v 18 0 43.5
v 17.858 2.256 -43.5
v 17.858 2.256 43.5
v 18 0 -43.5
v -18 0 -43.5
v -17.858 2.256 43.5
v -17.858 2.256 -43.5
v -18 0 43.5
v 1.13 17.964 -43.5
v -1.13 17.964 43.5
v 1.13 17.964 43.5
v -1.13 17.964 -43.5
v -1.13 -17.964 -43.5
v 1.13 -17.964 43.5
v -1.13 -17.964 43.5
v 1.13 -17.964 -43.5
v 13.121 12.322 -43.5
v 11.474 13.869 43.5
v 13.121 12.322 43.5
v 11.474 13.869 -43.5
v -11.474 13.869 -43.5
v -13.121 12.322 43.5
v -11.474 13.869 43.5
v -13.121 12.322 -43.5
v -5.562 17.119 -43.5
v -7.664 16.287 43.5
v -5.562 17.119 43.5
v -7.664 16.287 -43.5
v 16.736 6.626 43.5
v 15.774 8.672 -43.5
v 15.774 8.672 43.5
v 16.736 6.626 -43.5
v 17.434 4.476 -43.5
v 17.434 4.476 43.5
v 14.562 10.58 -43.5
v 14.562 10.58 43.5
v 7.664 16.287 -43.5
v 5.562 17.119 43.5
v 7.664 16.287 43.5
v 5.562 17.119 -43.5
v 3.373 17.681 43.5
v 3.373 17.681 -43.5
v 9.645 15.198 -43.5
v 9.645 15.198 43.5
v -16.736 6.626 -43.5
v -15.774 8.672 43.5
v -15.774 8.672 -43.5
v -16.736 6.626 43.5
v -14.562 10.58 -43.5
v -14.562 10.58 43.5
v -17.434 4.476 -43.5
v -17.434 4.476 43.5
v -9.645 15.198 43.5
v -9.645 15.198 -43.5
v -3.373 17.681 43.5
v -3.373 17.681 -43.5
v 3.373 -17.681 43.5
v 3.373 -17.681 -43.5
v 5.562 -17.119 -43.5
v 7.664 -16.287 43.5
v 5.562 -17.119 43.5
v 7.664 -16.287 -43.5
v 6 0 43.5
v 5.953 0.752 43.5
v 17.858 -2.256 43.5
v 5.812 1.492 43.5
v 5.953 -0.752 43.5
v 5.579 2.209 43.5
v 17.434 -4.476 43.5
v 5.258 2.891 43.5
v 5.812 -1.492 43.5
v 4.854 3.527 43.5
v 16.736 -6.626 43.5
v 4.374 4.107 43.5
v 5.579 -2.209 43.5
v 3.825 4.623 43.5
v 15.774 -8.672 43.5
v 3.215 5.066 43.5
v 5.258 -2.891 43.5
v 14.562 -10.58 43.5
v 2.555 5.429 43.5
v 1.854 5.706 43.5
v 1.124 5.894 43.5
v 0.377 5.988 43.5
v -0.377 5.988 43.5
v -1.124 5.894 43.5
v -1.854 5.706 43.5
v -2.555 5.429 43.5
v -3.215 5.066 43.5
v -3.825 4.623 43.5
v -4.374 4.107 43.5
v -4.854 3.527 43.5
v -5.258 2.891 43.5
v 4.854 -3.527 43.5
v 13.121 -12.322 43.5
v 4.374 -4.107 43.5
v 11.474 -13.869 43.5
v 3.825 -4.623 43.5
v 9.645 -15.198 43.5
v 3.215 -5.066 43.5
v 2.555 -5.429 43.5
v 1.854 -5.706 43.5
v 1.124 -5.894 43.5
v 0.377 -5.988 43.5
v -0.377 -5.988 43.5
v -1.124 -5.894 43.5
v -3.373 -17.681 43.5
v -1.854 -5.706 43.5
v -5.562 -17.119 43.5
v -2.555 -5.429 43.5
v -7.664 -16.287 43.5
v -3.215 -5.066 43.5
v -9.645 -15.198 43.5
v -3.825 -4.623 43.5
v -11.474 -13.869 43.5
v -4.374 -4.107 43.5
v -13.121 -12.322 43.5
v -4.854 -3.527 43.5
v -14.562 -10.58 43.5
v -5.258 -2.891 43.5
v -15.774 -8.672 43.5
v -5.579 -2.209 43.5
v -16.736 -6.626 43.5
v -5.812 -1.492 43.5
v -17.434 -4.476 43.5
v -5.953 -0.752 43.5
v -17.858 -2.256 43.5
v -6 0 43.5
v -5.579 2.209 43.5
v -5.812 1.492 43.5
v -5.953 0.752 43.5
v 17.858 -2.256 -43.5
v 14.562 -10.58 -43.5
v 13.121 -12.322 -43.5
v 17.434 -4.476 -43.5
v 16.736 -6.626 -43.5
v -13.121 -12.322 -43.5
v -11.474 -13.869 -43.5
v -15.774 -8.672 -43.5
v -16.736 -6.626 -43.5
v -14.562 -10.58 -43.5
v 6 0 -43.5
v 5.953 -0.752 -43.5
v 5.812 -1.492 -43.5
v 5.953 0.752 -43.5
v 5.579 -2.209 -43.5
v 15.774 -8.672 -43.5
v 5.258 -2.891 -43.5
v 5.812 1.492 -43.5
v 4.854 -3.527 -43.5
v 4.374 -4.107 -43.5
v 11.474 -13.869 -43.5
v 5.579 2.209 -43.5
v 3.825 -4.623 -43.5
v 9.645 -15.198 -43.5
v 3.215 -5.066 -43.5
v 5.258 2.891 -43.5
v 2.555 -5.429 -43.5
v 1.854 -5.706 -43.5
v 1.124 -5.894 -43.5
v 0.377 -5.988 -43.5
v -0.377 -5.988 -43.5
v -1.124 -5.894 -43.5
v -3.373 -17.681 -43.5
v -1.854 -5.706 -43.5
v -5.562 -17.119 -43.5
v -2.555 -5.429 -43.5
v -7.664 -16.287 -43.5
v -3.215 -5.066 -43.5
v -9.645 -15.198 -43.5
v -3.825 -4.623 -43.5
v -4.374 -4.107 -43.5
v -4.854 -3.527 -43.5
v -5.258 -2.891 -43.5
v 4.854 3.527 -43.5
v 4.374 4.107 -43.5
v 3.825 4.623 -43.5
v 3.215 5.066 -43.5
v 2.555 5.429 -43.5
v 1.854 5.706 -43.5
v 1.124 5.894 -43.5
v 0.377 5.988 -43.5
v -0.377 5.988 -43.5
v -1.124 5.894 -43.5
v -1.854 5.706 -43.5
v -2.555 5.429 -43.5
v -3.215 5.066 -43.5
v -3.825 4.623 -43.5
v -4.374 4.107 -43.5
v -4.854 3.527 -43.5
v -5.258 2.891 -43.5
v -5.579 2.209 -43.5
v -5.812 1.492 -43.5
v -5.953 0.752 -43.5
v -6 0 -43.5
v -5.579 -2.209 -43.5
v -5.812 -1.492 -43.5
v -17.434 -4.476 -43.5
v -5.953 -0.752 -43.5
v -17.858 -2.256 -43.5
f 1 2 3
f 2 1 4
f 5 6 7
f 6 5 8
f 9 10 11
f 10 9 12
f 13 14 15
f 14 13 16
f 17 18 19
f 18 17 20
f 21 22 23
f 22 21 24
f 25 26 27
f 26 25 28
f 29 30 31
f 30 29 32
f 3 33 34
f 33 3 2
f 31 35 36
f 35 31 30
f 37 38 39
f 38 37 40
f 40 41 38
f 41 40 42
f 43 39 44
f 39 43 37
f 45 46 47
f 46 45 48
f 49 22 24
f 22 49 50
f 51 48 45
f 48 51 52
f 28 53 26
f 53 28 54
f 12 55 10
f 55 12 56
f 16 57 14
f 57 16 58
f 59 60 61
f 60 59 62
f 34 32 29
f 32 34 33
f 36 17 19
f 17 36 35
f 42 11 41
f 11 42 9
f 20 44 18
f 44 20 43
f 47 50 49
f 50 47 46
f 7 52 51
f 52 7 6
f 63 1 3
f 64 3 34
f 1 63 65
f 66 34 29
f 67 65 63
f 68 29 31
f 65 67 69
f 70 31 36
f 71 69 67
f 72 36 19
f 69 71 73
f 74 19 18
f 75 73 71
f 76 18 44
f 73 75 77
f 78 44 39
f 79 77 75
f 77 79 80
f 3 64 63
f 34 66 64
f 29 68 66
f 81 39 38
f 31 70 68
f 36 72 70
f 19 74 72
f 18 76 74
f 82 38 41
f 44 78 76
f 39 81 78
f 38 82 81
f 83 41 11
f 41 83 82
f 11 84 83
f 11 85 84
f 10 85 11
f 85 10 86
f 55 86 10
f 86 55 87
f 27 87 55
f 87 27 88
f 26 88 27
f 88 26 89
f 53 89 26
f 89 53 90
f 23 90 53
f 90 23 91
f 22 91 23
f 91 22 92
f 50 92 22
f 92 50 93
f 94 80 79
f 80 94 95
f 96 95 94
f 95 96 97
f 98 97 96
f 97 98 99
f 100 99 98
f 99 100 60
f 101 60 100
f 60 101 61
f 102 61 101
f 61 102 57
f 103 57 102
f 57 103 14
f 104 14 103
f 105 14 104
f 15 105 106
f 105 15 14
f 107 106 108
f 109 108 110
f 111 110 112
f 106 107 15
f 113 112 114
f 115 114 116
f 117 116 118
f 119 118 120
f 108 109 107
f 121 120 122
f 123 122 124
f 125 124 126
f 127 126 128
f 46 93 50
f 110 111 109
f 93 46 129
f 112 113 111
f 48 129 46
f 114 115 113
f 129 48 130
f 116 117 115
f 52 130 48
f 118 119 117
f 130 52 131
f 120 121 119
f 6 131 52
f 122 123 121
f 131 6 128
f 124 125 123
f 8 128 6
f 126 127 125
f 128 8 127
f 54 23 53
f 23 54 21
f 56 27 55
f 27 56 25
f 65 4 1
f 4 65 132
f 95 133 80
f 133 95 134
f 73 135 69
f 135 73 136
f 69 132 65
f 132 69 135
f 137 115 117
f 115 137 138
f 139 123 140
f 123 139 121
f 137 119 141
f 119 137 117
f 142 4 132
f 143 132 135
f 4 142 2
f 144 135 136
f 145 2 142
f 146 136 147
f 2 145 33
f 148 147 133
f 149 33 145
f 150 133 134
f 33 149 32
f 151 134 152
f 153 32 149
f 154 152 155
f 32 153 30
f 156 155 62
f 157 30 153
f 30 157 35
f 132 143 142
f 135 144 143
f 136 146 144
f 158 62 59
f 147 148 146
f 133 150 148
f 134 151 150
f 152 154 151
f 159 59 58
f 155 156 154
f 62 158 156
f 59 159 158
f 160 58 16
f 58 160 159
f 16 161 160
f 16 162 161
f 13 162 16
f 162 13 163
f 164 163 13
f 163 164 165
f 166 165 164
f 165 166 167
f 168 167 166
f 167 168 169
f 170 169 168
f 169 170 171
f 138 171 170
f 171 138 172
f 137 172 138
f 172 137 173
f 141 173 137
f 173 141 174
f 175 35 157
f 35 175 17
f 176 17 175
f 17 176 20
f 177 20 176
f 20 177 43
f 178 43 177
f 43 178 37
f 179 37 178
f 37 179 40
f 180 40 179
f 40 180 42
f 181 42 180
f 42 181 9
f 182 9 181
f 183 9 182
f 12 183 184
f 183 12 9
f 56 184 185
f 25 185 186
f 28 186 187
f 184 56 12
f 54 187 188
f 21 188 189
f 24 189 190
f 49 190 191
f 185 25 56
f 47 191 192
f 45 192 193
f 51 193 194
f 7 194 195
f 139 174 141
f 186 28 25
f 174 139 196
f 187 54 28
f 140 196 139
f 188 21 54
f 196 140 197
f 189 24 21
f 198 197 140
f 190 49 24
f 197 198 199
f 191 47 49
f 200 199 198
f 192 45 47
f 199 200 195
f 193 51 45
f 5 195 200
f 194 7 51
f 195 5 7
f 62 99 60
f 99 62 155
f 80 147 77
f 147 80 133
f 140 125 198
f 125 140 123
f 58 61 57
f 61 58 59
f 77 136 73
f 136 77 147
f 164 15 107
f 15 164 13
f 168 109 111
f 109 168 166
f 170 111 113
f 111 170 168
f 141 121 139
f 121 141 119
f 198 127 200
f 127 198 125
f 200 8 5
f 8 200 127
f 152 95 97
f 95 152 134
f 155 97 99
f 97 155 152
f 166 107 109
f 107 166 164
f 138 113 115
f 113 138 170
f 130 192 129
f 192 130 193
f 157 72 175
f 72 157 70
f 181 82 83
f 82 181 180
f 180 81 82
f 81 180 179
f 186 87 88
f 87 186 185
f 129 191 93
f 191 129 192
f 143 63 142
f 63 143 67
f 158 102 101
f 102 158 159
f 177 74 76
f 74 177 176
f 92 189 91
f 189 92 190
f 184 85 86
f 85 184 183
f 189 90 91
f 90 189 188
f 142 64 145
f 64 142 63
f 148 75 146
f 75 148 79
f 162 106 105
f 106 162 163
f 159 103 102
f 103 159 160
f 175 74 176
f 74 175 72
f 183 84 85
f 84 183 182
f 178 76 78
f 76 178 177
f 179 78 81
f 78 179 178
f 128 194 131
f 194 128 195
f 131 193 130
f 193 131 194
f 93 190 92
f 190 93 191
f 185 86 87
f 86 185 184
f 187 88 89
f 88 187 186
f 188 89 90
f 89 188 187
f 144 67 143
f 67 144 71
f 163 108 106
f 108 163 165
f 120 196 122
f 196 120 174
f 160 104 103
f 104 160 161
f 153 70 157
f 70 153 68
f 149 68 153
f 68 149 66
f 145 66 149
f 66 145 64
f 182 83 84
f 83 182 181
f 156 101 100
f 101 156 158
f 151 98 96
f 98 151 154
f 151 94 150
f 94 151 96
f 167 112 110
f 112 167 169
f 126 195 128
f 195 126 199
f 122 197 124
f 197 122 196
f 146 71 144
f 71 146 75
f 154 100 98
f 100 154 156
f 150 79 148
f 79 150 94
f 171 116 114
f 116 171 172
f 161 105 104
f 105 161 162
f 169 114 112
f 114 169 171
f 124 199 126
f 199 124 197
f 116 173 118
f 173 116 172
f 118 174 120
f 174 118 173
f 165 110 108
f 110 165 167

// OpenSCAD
$fn = 50;


difference() {
	union() {
		translate(v = [0, 0, -43.5000000000]) {
			cylinder(h = 87, r = 18.0000000000);
		}
	}
	union() {
		translate(v = [0, 0, -100.0000000000]) {
			cylinder(h = 200, r = 6);
		}
	}
}
